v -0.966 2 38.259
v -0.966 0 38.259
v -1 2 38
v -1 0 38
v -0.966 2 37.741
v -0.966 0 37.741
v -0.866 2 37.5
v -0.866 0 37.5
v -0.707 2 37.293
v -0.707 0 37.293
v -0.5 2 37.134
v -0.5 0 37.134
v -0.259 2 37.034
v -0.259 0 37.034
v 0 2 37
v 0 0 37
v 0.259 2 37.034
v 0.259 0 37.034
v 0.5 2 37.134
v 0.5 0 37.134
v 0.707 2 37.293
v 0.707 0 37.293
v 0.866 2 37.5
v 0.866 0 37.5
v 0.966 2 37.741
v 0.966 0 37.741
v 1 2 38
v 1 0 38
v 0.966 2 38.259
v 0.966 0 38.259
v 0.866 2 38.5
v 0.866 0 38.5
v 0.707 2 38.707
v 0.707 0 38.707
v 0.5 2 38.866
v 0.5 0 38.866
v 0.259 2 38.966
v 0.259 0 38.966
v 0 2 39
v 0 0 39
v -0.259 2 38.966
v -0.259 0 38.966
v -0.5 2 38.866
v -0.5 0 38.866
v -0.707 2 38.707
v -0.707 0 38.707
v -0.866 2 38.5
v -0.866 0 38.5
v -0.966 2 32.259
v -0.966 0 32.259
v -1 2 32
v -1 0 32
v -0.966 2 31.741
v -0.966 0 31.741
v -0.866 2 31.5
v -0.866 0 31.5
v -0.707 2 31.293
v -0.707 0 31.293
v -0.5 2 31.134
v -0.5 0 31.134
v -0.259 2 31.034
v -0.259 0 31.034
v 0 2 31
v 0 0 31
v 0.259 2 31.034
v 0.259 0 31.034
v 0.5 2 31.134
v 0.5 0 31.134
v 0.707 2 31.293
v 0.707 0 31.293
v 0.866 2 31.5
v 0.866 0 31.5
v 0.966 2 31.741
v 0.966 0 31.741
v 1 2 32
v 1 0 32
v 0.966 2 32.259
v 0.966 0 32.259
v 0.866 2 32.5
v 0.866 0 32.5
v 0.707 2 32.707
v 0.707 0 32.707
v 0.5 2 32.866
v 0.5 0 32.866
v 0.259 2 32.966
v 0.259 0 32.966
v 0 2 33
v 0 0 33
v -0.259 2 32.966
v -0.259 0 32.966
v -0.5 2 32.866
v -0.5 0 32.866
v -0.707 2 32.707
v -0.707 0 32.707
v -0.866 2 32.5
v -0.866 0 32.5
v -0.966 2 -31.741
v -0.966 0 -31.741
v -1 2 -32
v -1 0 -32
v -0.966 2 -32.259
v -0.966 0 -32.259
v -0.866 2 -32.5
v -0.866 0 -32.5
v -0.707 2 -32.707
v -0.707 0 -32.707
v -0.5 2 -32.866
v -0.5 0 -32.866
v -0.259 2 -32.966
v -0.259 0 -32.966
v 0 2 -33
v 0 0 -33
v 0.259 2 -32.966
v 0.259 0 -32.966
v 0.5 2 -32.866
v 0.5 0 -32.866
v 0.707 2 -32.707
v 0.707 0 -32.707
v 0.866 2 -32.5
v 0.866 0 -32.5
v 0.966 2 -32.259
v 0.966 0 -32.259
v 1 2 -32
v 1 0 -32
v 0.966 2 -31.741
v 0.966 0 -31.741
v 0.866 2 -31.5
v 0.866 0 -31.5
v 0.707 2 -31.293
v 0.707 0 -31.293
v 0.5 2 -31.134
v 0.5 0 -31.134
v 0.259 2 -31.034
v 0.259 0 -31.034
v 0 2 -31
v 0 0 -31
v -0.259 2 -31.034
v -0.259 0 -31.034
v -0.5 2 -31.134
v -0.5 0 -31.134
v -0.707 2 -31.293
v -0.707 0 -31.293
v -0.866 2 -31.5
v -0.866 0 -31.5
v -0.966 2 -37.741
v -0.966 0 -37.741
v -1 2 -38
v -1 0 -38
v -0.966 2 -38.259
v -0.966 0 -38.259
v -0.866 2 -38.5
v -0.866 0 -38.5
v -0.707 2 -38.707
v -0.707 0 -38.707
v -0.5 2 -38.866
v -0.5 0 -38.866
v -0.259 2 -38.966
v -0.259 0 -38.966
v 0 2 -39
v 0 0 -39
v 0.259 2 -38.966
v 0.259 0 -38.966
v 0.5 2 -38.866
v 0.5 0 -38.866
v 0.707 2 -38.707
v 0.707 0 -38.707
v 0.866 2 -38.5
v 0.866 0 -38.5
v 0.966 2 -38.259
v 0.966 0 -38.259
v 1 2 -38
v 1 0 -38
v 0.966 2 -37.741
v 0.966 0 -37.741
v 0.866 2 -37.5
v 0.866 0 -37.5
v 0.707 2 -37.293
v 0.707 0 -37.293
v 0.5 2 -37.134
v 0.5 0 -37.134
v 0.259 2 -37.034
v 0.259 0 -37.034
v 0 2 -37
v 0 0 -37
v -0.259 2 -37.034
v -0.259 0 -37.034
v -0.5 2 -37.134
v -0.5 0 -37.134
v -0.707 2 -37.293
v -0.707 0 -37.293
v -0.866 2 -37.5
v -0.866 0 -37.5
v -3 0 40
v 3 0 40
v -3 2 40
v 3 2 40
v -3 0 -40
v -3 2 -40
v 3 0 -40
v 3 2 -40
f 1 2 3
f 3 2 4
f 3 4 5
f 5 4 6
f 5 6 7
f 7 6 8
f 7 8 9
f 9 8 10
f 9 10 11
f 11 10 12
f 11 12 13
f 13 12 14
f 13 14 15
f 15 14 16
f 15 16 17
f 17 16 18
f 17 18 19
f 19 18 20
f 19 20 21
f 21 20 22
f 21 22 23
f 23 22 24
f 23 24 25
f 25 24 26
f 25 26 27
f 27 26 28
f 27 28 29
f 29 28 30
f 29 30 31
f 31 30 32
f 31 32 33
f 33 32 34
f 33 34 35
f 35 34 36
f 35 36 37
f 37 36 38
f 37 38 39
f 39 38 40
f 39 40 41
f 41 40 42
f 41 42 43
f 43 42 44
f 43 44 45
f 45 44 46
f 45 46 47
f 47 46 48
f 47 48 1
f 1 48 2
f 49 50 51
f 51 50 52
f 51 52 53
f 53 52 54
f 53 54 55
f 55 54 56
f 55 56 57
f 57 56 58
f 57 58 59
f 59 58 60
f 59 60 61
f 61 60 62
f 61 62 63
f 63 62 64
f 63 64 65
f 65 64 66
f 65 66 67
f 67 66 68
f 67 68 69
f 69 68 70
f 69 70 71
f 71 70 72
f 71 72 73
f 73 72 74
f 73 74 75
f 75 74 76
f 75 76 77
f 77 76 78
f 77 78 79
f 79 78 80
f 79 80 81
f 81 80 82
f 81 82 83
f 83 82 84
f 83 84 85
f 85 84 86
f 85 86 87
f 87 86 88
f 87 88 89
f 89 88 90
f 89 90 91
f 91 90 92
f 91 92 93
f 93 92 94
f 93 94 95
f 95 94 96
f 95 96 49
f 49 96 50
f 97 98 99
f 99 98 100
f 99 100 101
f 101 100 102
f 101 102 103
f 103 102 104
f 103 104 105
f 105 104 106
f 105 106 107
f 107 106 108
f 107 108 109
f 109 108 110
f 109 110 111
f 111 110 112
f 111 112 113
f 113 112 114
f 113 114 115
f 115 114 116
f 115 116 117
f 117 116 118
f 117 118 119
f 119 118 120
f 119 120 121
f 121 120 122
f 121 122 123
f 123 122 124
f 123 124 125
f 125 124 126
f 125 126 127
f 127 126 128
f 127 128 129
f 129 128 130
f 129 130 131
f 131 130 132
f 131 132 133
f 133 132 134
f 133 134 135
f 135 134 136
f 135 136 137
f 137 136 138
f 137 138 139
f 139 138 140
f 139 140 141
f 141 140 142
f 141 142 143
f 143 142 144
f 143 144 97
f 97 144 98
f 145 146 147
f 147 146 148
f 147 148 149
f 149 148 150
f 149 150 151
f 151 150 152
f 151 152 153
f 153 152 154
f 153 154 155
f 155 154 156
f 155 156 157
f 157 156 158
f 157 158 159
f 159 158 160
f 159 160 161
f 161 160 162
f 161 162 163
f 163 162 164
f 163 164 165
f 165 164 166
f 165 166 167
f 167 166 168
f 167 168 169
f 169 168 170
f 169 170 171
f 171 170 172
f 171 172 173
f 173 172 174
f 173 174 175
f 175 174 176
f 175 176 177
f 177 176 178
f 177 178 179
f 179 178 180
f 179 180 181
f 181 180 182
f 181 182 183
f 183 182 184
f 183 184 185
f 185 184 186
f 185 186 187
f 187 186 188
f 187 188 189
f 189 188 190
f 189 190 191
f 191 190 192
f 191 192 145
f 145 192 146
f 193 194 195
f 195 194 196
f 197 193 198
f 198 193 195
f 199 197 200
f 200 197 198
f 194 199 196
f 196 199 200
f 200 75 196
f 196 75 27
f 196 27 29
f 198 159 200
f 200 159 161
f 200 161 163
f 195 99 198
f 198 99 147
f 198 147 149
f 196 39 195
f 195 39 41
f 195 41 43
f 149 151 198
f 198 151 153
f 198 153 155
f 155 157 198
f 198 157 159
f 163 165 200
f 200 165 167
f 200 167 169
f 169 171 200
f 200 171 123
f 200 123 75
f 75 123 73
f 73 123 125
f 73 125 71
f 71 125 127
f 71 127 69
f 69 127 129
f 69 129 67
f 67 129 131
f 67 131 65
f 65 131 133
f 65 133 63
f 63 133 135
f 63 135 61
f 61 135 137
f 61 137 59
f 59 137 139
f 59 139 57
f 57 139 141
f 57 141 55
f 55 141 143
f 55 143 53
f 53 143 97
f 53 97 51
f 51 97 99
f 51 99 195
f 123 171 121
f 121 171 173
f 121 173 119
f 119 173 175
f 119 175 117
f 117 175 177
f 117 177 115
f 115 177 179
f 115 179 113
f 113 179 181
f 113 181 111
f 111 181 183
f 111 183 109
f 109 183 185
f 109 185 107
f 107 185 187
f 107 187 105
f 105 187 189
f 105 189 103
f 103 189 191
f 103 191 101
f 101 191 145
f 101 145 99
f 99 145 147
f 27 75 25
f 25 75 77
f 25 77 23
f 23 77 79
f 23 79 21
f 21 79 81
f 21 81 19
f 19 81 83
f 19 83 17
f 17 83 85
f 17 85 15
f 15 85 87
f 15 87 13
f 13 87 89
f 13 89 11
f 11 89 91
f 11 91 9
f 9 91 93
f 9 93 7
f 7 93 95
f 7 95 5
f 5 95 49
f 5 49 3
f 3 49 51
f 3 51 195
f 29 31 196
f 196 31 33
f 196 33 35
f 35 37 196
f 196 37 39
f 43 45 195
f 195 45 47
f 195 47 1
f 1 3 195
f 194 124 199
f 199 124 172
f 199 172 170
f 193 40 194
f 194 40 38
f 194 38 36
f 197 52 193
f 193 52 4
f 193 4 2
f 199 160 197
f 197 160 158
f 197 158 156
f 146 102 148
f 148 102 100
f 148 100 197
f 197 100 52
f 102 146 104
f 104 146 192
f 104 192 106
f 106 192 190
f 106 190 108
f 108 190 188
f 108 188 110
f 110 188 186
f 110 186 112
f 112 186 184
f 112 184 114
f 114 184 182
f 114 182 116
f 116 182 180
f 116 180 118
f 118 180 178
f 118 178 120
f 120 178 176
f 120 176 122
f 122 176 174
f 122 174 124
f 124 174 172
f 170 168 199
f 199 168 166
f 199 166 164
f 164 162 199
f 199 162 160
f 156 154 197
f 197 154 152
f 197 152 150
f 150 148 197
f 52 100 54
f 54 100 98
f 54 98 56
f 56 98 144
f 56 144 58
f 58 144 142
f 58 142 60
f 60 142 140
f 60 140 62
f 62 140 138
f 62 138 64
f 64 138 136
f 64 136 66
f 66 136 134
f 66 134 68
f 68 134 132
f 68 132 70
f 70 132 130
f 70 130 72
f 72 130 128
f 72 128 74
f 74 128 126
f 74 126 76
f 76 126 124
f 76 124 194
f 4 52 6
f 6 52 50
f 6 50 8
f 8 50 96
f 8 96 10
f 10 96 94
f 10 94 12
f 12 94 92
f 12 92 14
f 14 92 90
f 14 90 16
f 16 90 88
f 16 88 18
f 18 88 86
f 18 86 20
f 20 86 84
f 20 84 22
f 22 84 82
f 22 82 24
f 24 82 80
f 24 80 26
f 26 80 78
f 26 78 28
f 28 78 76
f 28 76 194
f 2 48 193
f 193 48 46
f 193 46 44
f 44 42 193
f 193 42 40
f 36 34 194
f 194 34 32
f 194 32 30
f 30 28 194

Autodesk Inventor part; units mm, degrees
ref_plane "YZ Plane" through (0, 0, 0) normal (1, 0, 0) x (0, 1, 0)
ref_plane "XZ Plane" through (0, 0, 0) normal (0, 1, 0) x (-1, 0, 0)
ref_plane "XY Plane" through (0, 0, 0) normal (0, 0, 1) x (1, 0, 0)
sketch "Sketch1" plane through (0, 0, 0) normal (0, 1, 0) x (-1, 0, 0)
  line L0 (-3, 40) -> (3, 40)
  line L1 (3, 40) -> (3, -40)
  line L2 (3, -40) -> (-3, -40)
  line L3 (-3, -40) -> (-3, 40)
  circle A0 centre (0, 38) radius 1
  circle A1 centre (0, 32) radius 1
  circle A2 centre (0, -32) radius 1
  circle A3 centre (0, -38) radius 1
  point P0 (0, 0)
extrude "Extrusion1" add sketch "Sketch1" along normal blind 2
properties part number "camera_arm"
